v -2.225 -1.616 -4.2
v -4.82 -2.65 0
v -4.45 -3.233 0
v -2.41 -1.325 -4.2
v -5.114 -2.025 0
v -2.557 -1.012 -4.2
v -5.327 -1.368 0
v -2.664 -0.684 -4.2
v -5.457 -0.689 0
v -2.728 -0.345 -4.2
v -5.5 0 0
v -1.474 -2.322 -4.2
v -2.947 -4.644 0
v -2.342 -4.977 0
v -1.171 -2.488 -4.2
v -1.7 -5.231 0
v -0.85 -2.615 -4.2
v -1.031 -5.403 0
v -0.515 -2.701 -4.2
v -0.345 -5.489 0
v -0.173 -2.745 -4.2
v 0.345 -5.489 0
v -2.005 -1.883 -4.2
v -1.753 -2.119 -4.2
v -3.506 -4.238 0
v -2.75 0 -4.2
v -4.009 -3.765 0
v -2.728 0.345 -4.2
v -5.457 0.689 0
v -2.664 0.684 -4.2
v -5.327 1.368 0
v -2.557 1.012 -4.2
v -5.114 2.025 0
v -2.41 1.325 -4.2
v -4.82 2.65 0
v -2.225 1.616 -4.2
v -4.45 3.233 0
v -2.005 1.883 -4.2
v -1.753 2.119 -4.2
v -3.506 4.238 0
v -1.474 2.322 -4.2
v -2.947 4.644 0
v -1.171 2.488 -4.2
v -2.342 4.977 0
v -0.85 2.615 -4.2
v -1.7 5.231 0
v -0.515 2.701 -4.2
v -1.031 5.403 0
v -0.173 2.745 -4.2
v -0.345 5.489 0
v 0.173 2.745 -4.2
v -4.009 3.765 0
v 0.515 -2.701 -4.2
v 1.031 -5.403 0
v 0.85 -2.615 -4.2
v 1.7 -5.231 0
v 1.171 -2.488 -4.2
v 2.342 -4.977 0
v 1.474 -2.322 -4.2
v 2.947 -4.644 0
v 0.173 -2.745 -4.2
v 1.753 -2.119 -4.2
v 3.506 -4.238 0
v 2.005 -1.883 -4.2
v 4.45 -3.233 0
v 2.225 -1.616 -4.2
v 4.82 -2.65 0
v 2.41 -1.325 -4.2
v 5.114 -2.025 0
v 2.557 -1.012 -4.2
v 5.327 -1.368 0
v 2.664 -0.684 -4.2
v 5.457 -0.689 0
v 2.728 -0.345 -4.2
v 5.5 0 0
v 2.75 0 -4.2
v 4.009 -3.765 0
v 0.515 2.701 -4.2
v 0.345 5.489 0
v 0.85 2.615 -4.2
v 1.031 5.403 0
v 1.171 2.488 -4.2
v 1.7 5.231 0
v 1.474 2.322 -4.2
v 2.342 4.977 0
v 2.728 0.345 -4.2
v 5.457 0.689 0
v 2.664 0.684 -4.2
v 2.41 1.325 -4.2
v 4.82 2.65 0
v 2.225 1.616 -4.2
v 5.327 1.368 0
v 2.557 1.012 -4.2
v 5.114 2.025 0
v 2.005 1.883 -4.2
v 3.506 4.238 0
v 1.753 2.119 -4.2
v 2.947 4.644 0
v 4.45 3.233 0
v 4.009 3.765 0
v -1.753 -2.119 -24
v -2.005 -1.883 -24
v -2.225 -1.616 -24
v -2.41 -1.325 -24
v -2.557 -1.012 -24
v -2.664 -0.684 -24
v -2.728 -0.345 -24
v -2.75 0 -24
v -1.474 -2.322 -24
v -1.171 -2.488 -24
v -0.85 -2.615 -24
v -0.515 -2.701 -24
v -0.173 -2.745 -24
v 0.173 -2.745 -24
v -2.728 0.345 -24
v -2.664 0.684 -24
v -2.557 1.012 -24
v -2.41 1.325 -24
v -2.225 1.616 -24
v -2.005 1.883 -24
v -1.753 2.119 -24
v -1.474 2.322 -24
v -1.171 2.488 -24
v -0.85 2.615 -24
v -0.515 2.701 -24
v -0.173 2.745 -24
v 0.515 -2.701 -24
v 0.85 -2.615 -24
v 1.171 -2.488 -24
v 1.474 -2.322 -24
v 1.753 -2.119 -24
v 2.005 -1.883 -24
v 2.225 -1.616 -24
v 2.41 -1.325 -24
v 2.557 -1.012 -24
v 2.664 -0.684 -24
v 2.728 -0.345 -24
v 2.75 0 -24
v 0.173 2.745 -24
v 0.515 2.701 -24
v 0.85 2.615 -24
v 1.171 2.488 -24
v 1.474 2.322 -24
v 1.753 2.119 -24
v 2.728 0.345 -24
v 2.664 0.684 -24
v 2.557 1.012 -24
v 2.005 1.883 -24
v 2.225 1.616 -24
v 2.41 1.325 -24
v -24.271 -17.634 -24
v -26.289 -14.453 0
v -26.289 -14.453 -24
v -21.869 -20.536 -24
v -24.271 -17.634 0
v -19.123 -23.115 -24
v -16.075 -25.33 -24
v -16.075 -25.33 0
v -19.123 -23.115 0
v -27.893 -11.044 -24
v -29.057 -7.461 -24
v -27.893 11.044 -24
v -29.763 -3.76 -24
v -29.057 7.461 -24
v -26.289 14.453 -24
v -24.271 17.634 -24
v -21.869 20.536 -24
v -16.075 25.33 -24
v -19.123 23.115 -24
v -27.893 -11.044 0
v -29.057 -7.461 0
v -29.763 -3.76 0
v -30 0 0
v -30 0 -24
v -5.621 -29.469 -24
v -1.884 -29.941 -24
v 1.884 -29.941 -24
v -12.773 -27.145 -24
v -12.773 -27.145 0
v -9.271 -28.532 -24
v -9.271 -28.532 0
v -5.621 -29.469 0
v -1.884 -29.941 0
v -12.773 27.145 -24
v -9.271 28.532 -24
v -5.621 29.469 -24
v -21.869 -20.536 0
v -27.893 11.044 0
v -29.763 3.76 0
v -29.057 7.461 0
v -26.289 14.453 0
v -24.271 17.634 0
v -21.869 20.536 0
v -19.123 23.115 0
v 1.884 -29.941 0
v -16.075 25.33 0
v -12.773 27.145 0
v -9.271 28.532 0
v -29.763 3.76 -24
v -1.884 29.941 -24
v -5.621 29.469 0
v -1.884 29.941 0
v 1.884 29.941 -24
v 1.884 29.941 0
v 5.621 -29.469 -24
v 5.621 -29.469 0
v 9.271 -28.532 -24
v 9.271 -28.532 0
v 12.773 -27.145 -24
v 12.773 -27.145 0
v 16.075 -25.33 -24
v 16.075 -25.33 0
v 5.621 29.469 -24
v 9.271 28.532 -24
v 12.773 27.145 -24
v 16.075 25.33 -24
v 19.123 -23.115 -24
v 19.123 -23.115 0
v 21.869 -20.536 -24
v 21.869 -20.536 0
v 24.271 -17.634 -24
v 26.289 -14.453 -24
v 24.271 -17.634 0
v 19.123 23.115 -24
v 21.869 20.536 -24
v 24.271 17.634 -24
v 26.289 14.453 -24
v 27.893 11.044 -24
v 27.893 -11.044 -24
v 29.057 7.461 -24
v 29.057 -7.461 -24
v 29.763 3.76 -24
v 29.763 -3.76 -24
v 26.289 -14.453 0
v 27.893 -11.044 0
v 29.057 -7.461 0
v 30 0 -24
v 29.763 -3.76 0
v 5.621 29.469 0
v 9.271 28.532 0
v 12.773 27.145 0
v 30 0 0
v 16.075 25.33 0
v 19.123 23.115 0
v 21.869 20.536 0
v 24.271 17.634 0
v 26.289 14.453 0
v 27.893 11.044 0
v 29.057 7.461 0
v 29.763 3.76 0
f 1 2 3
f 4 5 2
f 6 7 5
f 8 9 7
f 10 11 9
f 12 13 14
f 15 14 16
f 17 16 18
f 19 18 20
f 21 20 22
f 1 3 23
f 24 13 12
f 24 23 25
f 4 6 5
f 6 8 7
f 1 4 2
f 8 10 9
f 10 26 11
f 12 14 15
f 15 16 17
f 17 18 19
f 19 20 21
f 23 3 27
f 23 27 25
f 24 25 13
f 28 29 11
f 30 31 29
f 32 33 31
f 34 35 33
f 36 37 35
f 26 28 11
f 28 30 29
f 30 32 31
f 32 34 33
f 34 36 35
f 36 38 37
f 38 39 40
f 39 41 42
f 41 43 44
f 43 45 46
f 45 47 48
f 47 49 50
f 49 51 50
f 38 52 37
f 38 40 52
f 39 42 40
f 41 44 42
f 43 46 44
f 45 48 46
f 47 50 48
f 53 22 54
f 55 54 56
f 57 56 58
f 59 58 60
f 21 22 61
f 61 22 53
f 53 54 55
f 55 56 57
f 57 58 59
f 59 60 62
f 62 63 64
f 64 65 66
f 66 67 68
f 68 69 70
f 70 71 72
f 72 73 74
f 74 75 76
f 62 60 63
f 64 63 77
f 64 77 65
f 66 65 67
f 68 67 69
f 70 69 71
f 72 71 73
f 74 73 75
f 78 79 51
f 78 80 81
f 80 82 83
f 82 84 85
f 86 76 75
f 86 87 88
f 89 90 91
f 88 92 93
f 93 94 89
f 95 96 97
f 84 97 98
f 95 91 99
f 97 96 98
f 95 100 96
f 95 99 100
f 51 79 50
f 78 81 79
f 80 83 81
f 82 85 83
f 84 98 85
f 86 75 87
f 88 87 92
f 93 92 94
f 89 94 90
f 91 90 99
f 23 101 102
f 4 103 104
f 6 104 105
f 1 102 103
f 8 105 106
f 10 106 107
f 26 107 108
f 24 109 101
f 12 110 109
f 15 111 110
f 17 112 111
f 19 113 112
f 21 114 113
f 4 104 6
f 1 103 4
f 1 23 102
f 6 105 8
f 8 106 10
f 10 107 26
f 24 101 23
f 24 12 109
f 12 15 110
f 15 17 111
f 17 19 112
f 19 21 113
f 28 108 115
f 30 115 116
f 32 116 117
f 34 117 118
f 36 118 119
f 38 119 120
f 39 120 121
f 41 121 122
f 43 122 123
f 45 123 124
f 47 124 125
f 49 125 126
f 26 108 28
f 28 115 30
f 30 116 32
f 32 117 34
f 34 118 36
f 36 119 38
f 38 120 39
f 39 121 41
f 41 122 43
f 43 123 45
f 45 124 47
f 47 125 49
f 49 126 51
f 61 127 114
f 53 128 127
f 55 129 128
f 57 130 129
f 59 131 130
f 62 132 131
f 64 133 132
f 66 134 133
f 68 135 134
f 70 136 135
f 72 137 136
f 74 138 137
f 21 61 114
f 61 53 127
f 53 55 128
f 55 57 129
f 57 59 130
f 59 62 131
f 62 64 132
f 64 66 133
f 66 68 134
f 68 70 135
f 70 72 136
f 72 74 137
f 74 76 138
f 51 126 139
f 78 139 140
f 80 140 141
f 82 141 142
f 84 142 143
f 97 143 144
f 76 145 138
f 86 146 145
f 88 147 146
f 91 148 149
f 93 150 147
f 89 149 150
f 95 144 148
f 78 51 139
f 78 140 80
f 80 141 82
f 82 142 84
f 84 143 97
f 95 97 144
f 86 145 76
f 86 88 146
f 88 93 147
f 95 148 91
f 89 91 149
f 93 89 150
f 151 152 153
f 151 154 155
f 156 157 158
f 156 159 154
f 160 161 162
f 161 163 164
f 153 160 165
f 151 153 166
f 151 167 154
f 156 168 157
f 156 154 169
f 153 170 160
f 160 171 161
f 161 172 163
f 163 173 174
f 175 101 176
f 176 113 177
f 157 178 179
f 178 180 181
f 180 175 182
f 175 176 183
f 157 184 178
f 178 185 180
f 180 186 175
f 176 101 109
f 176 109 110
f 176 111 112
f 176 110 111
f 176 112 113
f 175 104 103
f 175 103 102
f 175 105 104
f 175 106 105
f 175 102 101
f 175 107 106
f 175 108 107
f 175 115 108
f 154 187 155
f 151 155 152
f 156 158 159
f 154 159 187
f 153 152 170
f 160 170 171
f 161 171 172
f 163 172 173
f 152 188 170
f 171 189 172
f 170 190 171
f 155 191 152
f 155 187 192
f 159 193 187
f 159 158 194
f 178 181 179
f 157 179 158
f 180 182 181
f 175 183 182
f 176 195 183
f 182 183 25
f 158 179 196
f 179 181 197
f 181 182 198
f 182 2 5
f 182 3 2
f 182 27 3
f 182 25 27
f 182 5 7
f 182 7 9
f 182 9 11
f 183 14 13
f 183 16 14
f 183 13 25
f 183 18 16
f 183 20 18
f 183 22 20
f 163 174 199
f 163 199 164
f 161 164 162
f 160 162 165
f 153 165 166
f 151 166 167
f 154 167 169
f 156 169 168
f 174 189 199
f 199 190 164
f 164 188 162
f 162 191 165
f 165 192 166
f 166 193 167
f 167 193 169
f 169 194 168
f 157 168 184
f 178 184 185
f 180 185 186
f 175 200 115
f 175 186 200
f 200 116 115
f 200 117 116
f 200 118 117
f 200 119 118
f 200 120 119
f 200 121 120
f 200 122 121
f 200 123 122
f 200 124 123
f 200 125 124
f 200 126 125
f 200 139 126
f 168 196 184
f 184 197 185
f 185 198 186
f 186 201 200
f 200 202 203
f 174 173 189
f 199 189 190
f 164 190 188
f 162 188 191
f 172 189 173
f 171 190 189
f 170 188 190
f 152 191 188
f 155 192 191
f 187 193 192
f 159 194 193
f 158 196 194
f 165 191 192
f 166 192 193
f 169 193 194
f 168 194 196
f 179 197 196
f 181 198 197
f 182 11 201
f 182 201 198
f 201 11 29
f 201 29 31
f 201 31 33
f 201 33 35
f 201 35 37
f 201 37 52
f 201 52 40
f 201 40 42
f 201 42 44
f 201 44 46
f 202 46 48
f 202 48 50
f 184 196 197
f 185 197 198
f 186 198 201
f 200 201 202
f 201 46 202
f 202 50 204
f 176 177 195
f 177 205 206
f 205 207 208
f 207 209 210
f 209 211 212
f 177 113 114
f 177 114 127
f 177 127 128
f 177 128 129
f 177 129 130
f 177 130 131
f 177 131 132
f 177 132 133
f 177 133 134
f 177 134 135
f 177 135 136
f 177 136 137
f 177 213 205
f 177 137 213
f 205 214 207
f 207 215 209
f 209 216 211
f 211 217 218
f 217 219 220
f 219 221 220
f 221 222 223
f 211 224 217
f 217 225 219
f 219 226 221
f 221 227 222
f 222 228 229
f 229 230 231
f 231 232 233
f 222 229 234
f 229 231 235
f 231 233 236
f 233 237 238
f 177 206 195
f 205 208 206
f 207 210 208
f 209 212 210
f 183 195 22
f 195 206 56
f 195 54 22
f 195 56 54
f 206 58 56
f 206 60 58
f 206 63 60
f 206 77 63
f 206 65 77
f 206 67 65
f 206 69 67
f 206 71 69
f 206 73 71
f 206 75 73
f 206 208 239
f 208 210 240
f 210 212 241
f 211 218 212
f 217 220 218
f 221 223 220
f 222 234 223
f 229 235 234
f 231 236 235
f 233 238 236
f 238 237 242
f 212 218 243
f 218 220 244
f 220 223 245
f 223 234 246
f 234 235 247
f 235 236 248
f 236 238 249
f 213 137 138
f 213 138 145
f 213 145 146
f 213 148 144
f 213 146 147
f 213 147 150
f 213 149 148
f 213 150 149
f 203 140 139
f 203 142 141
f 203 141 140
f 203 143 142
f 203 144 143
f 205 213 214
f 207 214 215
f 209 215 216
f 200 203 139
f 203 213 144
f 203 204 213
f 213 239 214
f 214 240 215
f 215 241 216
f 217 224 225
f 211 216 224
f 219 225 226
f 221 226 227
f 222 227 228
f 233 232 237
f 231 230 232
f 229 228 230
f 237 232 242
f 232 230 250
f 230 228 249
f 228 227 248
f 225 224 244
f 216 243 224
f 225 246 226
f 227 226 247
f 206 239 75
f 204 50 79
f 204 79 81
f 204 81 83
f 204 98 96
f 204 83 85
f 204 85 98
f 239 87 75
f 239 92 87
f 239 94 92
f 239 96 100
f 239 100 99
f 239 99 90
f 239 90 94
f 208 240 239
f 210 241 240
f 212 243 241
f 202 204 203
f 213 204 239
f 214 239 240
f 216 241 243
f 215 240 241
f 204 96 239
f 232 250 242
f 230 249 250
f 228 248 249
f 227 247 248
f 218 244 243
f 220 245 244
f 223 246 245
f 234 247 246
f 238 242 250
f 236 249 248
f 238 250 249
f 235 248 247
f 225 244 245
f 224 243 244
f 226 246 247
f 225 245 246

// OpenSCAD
$fn = 50;


difference() {
	union() {
		translate(v = [0, 0, -24.0000000000]) {
			cylinder(h = 24, r = 30.0000000000);
		}
	}
	union() {
		translate(v = [0, 0, 0]) {
			rotate(a = [0, 0, 0]) {
				difference() {
					union() {
						translate(v = [0, 0, -27.0000000000]) {
							cylinder(h = 27, r = 2.2500000000);
						}
						translate(v = [0, 0, -4.2000000000]) {
							cylinder(h = 4.2000000000, r1 = 2.7500000000, r2 = 5.5000000000);
						}
						translate(v = [0, 0, -27.0000000000]) {
							cylinder(h = 27, r = 2.7500000000);
						}
						translate(v = [0, 0, -27.0000000000]) {
							cylinder(h = 27, r = 2.2500000000);
						}
					}
					union();
				}
			}
		}
	}
}
